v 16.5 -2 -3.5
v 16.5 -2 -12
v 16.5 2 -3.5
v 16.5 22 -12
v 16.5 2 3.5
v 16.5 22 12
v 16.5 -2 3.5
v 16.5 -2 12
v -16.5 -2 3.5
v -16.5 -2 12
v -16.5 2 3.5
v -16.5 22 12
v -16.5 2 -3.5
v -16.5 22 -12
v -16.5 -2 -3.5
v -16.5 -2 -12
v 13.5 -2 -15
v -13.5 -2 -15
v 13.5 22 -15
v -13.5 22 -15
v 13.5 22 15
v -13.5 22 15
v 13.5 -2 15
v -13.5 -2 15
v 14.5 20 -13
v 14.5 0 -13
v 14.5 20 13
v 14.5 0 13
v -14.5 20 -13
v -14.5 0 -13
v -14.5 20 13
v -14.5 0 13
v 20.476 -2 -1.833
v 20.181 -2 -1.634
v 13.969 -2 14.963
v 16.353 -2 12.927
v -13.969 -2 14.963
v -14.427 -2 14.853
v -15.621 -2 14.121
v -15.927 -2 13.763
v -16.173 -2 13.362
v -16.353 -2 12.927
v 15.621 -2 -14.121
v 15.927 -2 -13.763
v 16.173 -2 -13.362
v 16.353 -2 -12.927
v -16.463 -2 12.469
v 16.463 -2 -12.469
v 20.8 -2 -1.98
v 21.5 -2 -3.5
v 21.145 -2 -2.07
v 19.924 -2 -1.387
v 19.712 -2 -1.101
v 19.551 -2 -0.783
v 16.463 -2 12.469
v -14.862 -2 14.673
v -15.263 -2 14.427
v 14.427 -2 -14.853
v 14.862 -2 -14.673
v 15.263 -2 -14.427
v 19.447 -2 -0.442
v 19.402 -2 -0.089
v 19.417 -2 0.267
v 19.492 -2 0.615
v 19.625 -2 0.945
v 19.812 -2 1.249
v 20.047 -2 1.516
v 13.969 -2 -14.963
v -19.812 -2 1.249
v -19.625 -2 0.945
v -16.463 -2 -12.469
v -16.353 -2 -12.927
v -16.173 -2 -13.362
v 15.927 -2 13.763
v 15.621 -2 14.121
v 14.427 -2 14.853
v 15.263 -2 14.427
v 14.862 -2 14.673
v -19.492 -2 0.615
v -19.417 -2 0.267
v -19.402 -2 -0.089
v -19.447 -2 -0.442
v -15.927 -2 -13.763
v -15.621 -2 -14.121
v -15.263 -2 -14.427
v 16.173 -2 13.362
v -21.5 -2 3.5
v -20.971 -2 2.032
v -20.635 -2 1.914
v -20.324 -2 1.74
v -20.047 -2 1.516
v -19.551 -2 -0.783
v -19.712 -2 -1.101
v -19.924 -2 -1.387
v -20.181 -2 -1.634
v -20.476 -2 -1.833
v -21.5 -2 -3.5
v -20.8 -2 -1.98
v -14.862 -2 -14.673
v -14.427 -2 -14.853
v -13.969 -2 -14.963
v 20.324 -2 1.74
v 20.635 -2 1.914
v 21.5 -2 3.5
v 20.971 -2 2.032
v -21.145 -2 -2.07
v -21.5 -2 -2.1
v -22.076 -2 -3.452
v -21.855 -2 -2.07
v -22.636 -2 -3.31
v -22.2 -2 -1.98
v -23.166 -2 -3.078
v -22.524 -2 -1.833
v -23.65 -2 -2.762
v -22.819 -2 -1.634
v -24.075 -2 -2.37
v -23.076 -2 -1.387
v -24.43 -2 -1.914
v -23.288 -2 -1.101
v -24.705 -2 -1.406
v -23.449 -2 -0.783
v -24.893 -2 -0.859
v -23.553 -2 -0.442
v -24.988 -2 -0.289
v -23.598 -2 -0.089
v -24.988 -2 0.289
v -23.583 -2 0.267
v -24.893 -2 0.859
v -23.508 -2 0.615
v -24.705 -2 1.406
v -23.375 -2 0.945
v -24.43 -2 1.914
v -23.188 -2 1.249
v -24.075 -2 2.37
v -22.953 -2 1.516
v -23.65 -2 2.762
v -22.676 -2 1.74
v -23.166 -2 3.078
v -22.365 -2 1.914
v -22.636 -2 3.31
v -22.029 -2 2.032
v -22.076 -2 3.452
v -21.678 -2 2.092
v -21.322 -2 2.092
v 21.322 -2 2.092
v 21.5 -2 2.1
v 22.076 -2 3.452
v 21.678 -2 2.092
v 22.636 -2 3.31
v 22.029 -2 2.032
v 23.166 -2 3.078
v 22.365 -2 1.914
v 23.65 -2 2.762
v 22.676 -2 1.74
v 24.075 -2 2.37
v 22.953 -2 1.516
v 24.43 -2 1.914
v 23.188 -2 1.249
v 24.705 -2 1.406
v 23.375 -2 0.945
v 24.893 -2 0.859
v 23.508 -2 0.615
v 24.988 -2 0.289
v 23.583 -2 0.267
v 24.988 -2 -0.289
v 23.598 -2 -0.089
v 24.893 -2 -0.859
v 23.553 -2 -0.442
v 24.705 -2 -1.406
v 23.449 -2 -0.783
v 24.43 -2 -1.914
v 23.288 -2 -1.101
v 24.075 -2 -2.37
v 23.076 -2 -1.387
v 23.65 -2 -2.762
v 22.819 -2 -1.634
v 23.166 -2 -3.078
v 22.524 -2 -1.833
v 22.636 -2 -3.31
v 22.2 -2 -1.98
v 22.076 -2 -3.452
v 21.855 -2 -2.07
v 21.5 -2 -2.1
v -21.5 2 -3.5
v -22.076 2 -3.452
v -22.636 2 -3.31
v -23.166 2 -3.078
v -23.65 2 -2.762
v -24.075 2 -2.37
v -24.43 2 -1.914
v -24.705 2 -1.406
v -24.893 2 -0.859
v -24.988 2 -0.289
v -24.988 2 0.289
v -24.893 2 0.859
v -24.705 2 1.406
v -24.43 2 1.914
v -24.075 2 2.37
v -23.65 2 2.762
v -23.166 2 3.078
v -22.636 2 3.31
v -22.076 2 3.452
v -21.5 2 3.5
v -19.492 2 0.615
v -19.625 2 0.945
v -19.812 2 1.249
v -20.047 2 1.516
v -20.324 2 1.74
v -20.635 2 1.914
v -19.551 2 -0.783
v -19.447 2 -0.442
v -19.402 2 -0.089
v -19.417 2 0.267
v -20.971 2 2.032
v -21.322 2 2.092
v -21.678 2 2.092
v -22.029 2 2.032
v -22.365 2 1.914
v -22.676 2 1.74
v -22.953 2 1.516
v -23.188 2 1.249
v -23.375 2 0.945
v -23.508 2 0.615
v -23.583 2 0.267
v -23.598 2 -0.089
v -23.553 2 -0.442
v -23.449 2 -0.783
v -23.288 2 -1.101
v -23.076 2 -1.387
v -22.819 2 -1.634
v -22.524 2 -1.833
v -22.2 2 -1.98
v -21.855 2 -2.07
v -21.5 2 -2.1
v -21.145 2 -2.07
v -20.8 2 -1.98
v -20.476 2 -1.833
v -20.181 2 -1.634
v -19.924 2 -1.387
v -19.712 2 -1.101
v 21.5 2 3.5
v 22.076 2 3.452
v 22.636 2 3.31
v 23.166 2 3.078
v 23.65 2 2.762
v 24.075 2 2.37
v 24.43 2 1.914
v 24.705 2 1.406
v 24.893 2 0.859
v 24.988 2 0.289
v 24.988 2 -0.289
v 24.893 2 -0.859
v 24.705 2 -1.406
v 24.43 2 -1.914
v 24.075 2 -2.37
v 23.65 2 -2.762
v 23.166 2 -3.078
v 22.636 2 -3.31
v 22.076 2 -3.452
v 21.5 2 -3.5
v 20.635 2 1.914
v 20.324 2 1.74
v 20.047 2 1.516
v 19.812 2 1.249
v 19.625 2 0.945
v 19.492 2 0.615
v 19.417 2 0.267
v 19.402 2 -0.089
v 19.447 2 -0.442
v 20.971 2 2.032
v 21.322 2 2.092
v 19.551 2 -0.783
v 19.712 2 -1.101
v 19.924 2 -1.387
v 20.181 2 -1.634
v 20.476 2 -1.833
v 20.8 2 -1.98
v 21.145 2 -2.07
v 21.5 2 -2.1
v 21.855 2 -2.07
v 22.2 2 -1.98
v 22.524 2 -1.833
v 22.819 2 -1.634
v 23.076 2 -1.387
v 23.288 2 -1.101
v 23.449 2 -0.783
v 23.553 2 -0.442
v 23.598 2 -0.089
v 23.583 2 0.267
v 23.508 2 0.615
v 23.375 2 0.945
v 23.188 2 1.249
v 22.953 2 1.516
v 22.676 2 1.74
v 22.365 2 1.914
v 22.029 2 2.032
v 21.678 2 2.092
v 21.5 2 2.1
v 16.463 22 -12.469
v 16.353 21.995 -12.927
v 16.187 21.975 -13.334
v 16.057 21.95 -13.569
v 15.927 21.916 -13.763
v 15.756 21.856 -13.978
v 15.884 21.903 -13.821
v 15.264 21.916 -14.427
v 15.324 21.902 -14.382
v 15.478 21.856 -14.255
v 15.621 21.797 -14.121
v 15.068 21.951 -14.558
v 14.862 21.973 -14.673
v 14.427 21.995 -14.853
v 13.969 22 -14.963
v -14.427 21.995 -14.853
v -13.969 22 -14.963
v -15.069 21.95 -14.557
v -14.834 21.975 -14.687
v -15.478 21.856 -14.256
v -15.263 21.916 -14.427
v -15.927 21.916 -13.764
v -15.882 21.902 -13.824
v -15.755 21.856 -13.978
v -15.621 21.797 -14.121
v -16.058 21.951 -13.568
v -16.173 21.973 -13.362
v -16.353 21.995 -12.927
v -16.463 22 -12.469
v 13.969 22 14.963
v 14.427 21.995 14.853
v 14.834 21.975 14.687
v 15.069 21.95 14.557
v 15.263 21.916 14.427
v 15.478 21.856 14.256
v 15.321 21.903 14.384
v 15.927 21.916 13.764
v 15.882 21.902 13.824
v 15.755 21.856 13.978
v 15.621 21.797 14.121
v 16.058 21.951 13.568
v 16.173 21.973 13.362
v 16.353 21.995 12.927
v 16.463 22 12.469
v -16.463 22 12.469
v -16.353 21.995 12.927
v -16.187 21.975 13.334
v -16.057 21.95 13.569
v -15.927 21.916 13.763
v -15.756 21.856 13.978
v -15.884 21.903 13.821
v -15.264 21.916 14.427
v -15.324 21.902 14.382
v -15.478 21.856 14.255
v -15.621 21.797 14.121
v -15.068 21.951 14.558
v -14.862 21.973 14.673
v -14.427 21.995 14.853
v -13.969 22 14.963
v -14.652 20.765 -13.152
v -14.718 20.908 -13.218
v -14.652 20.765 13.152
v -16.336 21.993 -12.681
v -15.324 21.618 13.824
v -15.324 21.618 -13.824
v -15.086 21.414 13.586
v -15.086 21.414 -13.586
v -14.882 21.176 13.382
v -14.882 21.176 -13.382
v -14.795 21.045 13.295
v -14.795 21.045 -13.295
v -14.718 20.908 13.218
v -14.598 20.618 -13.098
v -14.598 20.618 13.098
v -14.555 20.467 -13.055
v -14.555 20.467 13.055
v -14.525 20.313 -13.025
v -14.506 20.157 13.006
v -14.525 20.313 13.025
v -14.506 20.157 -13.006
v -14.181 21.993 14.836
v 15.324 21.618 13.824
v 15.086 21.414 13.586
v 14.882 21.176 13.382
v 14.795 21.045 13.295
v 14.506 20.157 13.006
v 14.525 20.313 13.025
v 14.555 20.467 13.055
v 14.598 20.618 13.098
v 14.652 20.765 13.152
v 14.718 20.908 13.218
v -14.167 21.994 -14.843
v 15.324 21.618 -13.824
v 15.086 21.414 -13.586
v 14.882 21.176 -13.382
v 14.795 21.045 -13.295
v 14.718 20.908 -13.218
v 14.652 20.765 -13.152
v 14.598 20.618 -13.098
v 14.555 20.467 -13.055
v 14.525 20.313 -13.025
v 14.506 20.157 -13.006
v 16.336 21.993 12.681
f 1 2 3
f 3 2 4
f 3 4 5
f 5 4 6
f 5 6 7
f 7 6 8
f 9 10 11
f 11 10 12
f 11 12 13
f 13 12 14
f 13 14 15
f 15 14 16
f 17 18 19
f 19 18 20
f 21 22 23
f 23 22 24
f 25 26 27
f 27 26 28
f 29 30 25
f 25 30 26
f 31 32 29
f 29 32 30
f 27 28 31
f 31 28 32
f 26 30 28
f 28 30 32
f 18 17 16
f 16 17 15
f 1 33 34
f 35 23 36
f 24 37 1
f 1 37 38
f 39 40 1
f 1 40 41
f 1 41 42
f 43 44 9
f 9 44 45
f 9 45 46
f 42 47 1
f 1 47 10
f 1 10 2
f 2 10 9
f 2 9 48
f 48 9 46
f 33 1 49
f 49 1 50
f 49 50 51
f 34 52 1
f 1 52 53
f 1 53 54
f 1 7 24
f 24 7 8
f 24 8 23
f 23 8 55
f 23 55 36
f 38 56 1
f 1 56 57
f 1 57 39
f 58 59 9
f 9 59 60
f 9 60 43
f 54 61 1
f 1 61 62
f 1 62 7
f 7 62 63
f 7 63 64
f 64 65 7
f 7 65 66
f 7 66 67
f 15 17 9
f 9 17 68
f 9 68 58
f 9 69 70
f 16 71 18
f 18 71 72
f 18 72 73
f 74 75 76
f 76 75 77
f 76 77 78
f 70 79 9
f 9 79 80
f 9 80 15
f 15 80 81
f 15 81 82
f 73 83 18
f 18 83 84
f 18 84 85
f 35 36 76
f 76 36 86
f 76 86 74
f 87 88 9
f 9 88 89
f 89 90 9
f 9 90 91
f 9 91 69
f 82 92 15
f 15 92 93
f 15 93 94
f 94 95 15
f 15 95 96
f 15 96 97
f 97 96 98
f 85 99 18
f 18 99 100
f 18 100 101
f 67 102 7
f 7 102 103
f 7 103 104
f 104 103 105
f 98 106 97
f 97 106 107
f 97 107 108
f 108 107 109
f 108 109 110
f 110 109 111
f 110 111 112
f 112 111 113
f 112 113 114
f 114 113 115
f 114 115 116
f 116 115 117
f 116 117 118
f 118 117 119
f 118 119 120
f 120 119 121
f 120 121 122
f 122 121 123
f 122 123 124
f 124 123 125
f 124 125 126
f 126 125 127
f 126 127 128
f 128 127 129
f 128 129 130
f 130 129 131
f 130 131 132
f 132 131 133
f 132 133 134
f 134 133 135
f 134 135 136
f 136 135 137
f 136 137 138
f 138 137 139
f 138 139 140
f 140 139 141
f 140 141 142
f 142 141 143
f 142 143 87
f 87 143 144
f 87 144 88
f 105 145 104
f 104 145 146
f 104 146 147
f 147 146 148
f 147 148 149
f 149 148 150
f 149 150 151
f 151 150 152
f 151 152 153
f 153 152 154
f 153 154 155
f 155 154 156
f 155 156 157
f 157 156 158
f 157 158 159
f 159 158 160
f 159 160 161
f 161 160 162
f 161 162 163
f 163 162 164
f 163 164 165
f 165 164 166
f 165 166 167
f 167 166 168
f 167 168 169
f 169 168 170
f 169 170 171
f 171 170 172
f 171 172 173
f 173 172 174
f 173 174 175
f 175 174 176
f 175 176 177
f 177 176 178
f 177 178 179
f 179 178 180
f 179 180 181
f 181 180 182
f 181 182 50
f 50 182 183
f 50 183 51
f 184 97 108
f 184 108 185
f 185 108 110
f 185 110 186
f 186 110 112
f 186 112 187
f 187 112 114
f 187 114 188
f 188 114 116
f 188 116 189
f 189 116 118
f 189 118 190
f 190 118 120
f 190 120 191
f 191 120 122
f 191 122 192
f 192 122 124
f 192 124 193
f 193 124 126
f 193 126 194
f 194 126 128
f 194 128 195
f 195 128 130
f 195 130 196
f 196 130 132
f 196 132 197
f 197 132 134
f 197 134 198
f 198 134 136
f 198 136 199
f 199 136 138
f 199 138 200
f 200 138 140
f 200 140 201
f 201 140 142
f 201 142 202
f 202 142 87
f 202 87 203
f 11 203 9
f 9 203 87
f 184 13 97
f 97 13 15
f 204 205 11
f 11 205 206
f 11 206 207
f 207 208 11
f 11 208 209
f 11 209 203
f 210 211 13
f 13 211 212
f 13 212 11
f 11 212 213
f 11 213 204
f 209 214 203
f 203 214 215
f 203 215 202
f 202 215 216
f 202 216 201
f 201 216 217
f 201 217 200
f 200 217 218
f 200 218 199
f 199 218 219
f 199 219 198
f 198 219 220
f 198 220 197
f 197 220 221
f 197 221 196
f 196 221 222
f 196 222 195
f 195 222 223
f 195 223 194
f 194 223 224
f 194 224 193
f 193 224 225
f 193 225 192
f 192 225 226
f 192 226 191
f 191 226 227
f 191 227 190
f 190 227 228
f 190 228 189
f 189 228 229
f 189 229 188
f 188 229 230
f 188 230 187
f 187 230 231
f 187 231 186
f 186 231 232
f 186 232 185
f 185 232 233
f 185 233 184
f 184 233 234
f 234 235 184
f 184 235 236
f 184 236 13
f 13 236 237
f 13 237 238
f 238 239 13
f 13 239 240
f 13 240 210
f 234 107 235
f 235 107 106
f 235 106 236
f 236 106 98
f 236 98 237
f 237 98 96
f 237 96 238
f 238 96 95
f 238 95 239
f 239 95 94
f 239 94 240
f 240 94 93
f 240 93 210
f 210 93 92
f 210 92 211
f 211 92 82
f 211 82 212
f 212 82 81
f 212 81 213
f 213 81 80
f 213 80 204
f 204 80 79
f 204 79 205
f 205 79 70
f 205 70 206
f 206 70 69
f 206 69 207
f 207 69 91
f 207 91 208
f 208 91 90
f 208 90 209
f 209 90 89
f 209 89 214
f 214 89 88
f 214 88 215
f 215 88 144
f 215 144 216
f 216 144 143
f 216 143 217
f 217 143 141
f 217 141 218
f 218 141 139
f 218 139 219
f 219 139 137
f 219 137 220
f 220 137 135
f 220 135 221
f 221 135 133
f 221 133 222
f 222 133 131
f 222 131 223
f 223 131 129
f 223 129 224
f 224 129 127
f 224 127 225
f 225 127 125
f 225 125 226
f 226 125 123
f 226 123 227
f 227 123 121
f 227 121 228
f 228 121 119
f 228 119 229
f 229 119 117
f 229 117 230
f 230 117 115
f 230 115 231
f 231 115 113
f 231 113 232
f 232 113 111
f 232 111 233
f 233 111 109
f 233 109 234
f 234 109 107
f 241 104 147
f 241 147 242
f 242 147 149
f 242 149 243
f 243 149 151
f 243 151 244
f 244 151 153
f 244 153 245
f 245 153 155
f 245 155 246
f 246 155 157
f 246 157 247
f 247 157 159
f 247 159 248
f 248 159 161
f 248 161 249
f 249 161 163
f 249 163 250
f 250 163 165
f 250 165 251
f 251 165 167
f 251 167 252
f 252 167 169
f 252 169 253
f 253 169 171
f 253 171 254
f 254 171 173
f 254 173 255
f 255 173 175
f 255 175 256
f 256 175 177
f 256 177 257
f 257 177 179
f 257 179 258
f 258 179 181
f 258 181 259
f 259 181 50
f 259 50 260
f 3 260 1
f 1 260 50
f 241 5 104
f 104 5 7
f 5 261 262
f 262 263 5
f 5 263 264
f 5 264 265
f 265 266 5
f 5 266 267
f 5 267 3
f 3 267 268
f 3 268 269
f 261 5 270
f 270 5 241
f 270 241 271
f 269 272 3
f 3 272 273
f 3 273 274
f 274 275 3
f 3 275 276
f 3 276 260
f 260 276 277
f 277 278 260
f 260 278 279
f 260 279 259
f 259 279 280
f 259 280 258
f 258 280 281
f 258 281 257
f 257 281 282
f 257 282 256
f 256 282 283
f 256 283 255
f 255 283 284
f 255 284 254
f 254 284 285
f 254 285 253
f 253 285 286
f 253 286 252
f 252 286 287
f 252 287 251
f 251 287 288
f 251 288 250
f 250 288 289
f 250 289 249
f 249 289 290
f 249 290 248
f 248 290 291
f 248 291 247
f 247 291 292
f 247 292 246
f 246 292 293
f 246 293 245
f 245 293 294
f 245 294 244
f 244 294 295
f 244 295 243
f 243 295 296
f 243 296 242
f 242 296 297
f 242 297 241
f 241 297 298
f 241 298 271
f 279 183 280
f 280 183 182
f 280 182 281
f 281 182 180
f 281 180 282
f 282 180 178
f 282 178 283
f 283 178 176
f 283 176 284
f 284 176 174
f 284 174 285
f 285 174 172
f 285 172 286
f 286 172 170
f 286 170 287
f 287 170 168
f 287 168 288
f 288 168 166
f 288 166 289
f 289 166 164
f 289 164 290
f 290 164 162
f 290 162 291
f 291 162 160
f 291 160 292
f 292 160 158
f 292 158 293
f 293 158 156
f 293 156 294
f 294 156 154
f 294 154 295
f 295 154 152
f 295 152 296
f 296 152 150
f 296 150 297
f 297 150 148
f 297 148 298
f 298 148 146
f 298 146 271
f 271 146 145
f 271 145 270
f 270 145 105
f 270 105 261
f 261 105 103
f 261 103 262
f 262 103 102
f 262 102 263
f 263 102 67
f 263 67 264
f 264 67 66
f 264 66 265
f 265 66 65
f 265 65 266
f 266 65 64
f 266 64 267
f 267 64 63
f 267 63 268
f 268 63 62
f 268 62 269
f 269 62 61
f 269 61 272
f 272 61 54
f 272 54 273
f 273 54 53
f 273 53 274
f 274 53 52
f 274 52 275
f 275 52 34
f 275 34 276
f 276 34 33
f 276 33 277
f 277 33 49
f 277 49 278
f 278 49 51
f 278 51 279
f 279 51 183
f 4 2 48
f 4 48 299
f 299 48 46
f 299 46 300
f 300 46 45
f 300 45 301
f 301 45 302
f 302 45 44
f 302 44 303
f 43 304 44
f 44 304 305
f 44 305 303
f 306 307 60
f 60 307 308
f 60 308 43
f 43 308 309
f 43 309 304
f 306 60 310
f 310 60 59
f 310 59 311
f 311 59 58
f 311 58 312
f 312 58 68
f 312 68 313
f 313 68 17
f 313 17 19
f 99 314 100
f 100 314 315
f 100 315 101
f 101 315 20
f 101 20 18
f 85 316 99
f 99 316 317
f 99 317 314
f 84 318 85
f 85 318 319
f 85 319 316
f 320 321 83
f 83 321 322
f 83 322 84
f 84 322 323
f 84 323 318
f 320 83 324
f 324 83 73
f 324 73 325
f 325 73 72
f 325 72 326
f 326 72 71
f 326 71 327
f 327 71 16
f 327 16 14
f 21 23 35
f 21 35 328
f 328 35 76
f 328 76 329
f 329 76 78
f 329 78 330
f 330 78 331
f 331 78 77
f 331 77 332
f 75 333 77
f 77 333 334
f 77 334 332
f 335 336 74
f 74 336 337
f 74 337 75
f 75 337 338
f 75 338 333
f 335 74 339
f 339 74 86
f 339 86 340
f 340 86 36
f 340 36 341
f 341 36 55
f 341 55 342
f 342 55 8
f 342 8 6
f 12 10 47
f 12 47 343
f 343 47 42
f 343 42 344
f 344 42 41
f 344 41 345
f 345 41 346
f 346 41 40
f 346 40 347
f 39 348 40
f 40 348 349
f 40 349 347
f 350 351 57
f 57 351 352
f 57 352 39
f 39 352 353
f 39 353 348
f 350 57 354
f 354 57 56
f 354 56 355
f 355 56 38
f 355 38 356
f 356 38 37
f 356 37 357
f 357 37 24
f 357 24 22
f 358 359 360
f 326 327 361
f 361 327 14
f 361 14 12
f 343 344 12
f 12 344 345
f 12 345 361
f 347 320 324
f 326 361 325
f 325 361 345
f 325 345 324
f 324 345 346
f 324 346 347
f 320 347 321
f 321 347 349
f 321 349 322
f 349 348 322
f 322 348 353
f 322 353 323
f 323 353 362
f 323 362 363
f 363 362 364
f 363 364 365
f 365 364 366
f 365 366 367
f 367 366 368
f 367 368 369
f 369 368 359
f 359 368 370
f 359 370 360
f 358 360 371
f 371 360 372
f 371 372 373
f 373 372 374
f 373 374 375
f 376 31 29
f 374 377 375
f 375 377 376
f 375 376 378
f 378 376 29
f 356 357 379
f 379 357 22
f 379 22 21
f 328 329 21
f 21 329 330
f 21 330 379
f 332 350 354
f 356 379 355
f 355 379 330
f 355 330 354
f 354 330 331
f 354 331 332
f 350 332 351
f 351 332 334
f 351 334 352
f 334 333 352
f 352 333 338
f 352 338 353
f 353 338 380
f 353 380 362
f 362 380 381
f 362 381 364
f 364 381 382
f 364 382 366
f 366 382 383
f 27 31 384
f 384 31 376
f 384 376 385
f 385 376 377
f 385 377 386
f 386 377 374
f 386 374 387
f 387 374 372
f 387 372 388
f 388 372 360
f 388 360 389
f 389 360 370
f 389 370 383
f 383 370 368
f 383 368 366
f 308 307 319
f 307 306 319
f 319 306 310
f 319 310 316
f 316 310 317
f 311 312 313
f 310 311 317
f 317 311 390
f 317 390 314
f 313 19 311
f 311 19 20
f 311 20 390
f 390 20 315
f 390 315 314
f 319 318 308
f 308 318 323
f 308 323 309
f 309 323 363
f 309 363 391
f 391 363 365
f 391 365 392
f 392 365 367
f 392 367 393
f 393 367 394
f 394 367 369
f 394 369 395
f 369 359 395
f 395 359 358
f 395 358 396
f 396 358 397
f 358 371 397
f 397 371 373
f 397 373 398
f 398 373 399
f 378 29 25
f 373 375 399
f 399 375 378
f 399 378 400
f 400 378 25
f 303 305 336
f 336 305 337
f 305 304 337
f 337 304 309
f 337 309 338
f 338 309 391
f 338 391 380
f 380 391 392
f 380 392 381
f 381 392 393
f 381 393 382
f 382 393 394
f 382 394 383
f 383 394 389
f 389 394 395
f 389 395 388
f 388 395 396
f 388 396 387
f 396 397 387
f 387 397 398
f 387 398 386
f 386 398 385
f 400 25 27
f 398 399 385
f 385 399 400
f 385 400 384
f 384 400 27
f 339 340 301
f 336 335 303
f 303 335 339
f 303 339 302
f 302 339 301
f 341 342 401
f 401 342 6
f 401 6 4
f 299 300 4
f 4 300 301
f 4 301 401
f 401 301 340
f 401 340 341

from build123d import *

# Parameters (mm, degrees)
SKETCH2_W           = 33
SKETCH2_H           = 30
SKETCH2_W_2         = 29
SKETCH2_H_2         = 26
BOSS_EXTRUDE1_DEPTH = 22
SKETCH3_W           = 33
SKETCH3_H           = 30
BOSS_EXTRUDE2_DEPTH = 2
SKETCH4_R           = 2.1
BOSS_EXTRUDE3_DEPTH = 4
FILLET1_R           = 3
FILLET2_R           = 2


with BuildPart() as part:
    # Sketch2 → Boss-Extrude1 (new body)
    with BuildSketch(Plane(origin=(0, 0, 0), x_dir=(1, 0, 0), z_dir=(0, 1, 0))):
        Rectangle(SKETCH2_W, SKETCH2_H)
        Rectangle(SKETCH2_W_2, SKETCH2_H_2, mode=Mode.SUBTRACT)
    extrude(amount=BOSS_EXTRUDE1_DEPTH)

    # Sketch3 → Boss-Extrude2 (add)
    with BuildSketch(Plane.XZ):
        Rectangle(SKETCH3_W, SKETCH3_H)
    extrude(amount=BOSS_EXTRUDE2_DEPTH)

    # Sketch4 → Boss-Extrude3 (add)
    # profile 1 of 2: a face of its own
    with BuildSketch(Plane.XZ.offset(2)):
        with BuildLine():
            Line((-21.5, 3.5), (-16.5, 3.5))
            Line((-16.5, 3.5), (-16.5, -3.5))
            Line((-16.5, -3.5), (-21.5, -3.5))
            ThreePointArc((-21.5, -3.5), (-25, 0), (-21.5, 3.5))
        make_face()
        with Locations(Location((-21.5, 0, 0), (0, 0, 270))):
            Circle(SKETCH4_R, mode=Mode.SUBTRACT)
    # profile 2 of 2: a face of its own
    with BuildSketch(Plane.XZ.offset(2)):
        with BuildLine():
            Line((16.5, 3.5), (16.5, -3.5))
            Line((16.5, -3.5), (21.5, -3.5))
            ThreePointArc((21.5, -3.5), (25, 0), (21.5, 3.5))
            Line((21.5, 3.5), (16.5, 3.5))
        make_face()
        with Locations(Location((21.5, 0, 0), (0, 0, 90))):
            Circle(SKETCH4_R, mode=Mode.SUBTRACT)
    extrude(amount=-BOSS_EXTRUDE3_DEPTH)

    # Fillet1
    fillet1_edges = [part.edges().sort_by_distance(p)[0] for p in [
        (16.5, 10, 15),
        (-16.5, 10, 15),
        (-16.5, 10, -15),
        (16.5, 10, -15),
    ]]
    fillet(fillet1_edges, radius=FILLET1_R)

    # Fillet2
    # the kernel refuses this fillet: 2 mm, written as the material it takes off along each edge
    with BuildSketch(Plane(origin=(14.5, 22, -13), x_dir=(1, 0, 0), z_dir=(0, 0, 1)), Plane(origin=(-14.5, 22, 13), x_dir=(-1, 0, 0), z_dir=(0, 0, -1))) as fillet2_piece_1:
        with BuildLine():
            CenterArc((FILLET2_R, -FILLET2_R), FILLET2_R, 90, 90)
            Line((0, -FILLET2_R), (-FILLET2_R * 0.02, -FILLET2_R))
            Line((-FILLET2_R * 0.02, -FILLET2_R), (-FILLET2_R * 0.02, FILLET2_R * 0.02))
            Line((-FILLET2_R * 0.02, FILLET2_R * 0.02), (FILLET2_R, FILLET2_R * 0.02))
            Line((FILLET2_R, FILLET2_R * 0.02), (FILLET2_R, 0))
        make_face()
    extrude(amount=26, mode=Mode.SUBTRACT)
    with BuildSketch(Plane(origin=(-14.5, 22, -13), x_dir=(0, 0, -1), z_dir=(1, 0, 0)), Plane(origin=(14.5, 22, 13), x_dir=(0, 0, 1), z_dir=(-1, 0, 0))) as fillet2_piece_2:
        with BuildLine():
            CenterArc((FILLET2_R, -FILLET2_R), FILLET2_R, 90, 90)
            Line((0, -FILLET2_R), (-FILLET2_R * 0.02, -FILLET2_R))
            Line((-FILLET2_R * 0.02, -FILLET2_R), (-FILLET2_R * 0.02, FILLET2_R * 0.02))
            Line((-FILLET2_R * 0.02, FILLET2_R * 0.02), (FILLET2_R, FILLET2_R * 0.02))
            Line((FILLET2_R, FILLET2_R * 0.02), (FILLET2_R, 0))
        make_face()
    extrude(amount=29, mode=Mode.SUBTRACT)
    with BuildSketch(Plane(origin=(14.5, 22, -18), x_dir=(1, 0, 0), z_dir=(0, 0, 1))) as fillet2_piece_3a_section:
        with BuildLine():
            CenterArc((FILLET2_R, -FILLET2_R), FILLET2_R, 90, 90)
            Line((0, -FILLET2_R), (-FILLET2_R * 0.02, -FILLET2_R))
            Line((-FILLET2_R * 0.02, -FILLET2_R), (-FILLET2_R * 0.02, FILLET2_R * 0.02))
            Line((-FILLET2_R * 0.02, FILLET2_R * 0.02), (FILLET2_R, FILLET2_R * 0.02))
            Line((FILLET2_R, FILLET2_R * 0.02), (FILLET2_R, 0))
        make_face()
    fillet2_piece_3a = extrude(amount=31, mode=Mode.PRIVATE)
    fillet2_piece_3a = split(fillet2_piece_3a, bisect_by=Plane(origin=(14.952790229, 21.547209771, -13), z_dir=(0, 0, -1)), keep=Keep.TOP, mode=Mode.PRIVATE)
    with BuildSketch(Plane(origin=(-14.5, 22, -13), x_dir=(0, 0, -1), z_dir=(1, 0, 0))) as fillet2_piece_3b_section:
        with BuildLine():
            CenterArc((FILLET2_R, -FILLET2_R), FILLET2_R, 90, 90)
            Line((0, -FILLET2_R), (-FILLET2_R * 0.02, -FILLET2_R))
            Line((-FILLET2_R * 0.02, -FILLET2_R), (-FILLET2_R * 0.02, FILLET2_R * 0.02))
            Line((-FILLET2_R * 0.02, FILLET2_R * 0.02), (FILLET2_R, FILLET2_R * 0.02))
            Line((FILLET2_R, FILLET2_R * 0.02), (FILLET2_R, 0))
        make_face()
    fillet2_piece_3b = extrude(amount=34, mode=Mode.PRIVATE)
    fillet2_piece_3b = split(fillet2_piece_3b, bisect_by=Plane(origin=(14.5, 21.547209771, -13.452790229), z_dir=(1, 0, 0)), keep=Keep.TOP, mode=Mode.PRIVATE)
    fillet2_piece_3 = fillet2_piece_3a & fillet2_piece_3b
    add(fillet2_piece_3, mode=Mode.SUBTRACT)
    with BuildSketch(Plane(origin=(19.5, 22, 13), x_dir=(0, 0, 1), z_dir=(-1, 0, 0))) as fillet2_piece_4a_section:
        with BuildLine():
            CenterArc((FILLET2_R, -FILLET2_R), FILLET2_R, 90, 90)
            Line((0, -FILLET2_R), (-FILLET2_R * 0.02, -FILLET2_R))
            Line((-FILLET2_R * 0.02, -FILLET2_R), (-FILLET2_R * 0.02, FILLET2_R * 0.02))
            Line((-FILLET2_R * 0.02, FILLET2_R * 0.02), (FILLET2_R, FILLET2_R * 0.02))
            Line((FILLET2_R, FILLET2_R * 0.02), (FILLET2_R, 0))
        make_face()
    fillet2_piece_4a = extrude(amount=34, mode=Mode.PRIVATE)
    fillet2_piece_4a = split(fillet2_piece_4a, bisect_by=Plane(origin=(14.5, 21.547209771, 13.452790229), z_dir=(1, 0, 0)), keep=Keep.TOP, mode=Mode.PRIVATE)
    with BuildSketch(Plane(origin=(14.5, 22, -13), x_dir=(1, 0, 0), z_dir=(0, 0, 1))) as fillet2_piece_4b_section:
        with BuildLine():
            CenterArc((FILLET2_R, -FILLET2_R), FILLET2_R, 90, 90)
            Line((0, -FILLET2_R), (-FILLET2_R * 0.02, -FILLET2_R))
            Line((-FILLET2_R * 0.02, -FILLET2_R), (-FILLET2_R * 0.02, FILLET2_R * 0.02))
            Line((-FILLET2_R * 0.02, FILLET2_R * 0.02), (FILLET2_R, FILLET2_R * 0.02))
            Line((FILLET2_R, FILLET2_R * 0.02), (FILLET2_R, 0))
        make_face()
    fillet2_piece_4b = extrude(amount=31, mode=Mode.PRIVATE)
    fillet2_piece_4b = split(fillet2_piece_4b, bisect_by=Plane(origin=(14.952790229, 21.547209771, 13), z_dir=(0, 0, 1)), keep=Keep.TOP, mode=Mode.PRIVATE)
    fillet2_piece_4 = fillet2_piece_4a & fillet2_piece_4b
    add(fillet2_piece_4, mode=Mode.SUBTRACT)
    with BuildSketch(Plane(origin=(-14.5, 22, 13), x_dir=(-1, 0, 0), z_dir=(0, 0, -1))) as fillet2_piece_5a_section:
        with BuildLine():
            CenterArc((FILLET2_R, -FILLET2_R), FILLET2_R, 90, 90)
            Line((0, -FILLET2_R), (-FILLET2_R * 0.02, -FILLET2_R))
            Line((-FILLET2_R * 0.02, -FILLET2_R), (-FILLET2_R * 0.02, FILLET2_R * 0.02))
            Line((-FILLET2_R * 0.02, FILLET2_R * 0.02), (FILLET2_R, FILLET2_R * 0.02))
            Line((FILLET2_R, FILLET2_R * 0.02), (FILLET2_R, 0))
        make_face()
    fillet2_piece_5a = extrude(amount=31, mode=Mode.PRIVATE)
    fillet2_piece_5a = split(fillet2_piece_5a, bisect_by=Plane(origin=(-14.952790229, 21.547209771, -13), z_dir=(0, 0, -1)), keep=Keep.TOP, mode=Mode.PRIVATE)
    with BuildSketch(Plane(origin=(-19.5, 22, -13), x_dir=(0, 0, -1), z_dir=(1, 0, 0))) as fillet2_piece_5b_section:
        with BuildLine():
            CenterArc((FILLET2_R, -FILLET2_R), FILLET2_R, 90, 90)
            Line((0, -FILLET2_R), (-FILLET2_R * 0.02, -FILLET2_R))
            Line((-FILLET2_R * 0.02, -FILLET2_R), (-FILLET2_R * 0.02, FILLET2_R * 0.02))
            Line((-FILLET2_R * 0.02, FILLET2_R * 0.02), (FILLET2_R, FILLET2_R * 0.02))
            Line((FILLET2_R, FILLET2_R * 0.02), (FILLET2_R, 0))
        make_face()
    fillet2_piece_5b = extrude(amount=34, mode=Mode.PRIVATE)
    fillet2_piece_5b = split(fillet2_piece_5b, bisect_by=Plane(origin=(-14.5, 21.547209771, -13.452790229), z_dir=(-1, 0, 0)), keep=Keep.TOP, mode=Mode.PRIVATE)
    fillet2_piece_5 = fillet2_piece_5a & fillet2_piece_5b
    add(fillet2_piece_5, mode=Mode.SUBTRACT)
    with BuildSketch(Plane(origin=(-14.5, 22, 18), x_dir=(-1, 0, 0), z_dir=(0, 0, -1))) as fillet2_piece_6a_section:
        with BuildLine():
            CenterArc((FILLET2_R, -FILLET2_R), FILLET2_R, 90, 90)
            Line((0, -FILLET2_R), (-FILLET2_R * 0.02, -FILLET2_R))
            Line((-FILLET2_R * 0.02, -FILLET2_R), (-FILLET2_R * 0.02, FILLET2_R * 0.02))
            Line((-FILLET2_R * 0.02, FILLET2_R * 0.02), (FILLET2_R, FILLET2_R * 0.02))
            Line((FILLET2_R, FILLET2_R * 0.02), (FILLET2_R, 0))
        make_face()
    fillet2_piece_6a = extrude(amount=31, mode=Mode.PRIVATE)
    fillet2_piece_6a = split(fillet2_piece_6a, bisect_by=Plane(origin=(-14.952790229, 21.547209771, 13), z_dir=(0, 0, 1)), keep=Keep.TOP, mode=Mode.PRIVATE)
    with BuildSketch(Plane(origin=(14.5, 22, 13), x_dir=(0, 0, 1), z_dir=(-1, 0, 0))) as fillet2_piece_6b_section:
        with BuildLine():
            CenterArc((FILLET2_R, -FILLET2_R), FILLET2_R, 90, 90)
            Line((0, -FILLET2_R), (-FILLET2_R * 0.02, -FILLET2_R))
            Line((-FILLET2_R * 0.02, -FILLET2_R), (-FILLET2_R * 0.02, FILLET2_R * 0.02))
            Line((-FILLET2_R * 0.02, FILLET2_R * 0.02), (FILLET2_R, FILLET2_R * 0.02))
            Line((FILLET2_R, FILLET2_R * 0.02), (FILLET2_R, 0))
        make_face()
    fillet2_piece_6b = extrude(amount=34, mode=Mode.PRIVATE)
    fillet2_piece_6b = split(fillet2_piece_6b, bisect_by=Plane(origin=(-14.5, 21.547209771, 13.452790229), z_dir=(-1, 0, 0)), keep=Keep.TOP, mode=Mode.PRIVATE)
    fillet2_piece_6 = fillet2_piece_6a & fillet2_piece_6b
    add(fillet2_piece_6, mode=Mode.SUBTRACT)


solid = part.part
